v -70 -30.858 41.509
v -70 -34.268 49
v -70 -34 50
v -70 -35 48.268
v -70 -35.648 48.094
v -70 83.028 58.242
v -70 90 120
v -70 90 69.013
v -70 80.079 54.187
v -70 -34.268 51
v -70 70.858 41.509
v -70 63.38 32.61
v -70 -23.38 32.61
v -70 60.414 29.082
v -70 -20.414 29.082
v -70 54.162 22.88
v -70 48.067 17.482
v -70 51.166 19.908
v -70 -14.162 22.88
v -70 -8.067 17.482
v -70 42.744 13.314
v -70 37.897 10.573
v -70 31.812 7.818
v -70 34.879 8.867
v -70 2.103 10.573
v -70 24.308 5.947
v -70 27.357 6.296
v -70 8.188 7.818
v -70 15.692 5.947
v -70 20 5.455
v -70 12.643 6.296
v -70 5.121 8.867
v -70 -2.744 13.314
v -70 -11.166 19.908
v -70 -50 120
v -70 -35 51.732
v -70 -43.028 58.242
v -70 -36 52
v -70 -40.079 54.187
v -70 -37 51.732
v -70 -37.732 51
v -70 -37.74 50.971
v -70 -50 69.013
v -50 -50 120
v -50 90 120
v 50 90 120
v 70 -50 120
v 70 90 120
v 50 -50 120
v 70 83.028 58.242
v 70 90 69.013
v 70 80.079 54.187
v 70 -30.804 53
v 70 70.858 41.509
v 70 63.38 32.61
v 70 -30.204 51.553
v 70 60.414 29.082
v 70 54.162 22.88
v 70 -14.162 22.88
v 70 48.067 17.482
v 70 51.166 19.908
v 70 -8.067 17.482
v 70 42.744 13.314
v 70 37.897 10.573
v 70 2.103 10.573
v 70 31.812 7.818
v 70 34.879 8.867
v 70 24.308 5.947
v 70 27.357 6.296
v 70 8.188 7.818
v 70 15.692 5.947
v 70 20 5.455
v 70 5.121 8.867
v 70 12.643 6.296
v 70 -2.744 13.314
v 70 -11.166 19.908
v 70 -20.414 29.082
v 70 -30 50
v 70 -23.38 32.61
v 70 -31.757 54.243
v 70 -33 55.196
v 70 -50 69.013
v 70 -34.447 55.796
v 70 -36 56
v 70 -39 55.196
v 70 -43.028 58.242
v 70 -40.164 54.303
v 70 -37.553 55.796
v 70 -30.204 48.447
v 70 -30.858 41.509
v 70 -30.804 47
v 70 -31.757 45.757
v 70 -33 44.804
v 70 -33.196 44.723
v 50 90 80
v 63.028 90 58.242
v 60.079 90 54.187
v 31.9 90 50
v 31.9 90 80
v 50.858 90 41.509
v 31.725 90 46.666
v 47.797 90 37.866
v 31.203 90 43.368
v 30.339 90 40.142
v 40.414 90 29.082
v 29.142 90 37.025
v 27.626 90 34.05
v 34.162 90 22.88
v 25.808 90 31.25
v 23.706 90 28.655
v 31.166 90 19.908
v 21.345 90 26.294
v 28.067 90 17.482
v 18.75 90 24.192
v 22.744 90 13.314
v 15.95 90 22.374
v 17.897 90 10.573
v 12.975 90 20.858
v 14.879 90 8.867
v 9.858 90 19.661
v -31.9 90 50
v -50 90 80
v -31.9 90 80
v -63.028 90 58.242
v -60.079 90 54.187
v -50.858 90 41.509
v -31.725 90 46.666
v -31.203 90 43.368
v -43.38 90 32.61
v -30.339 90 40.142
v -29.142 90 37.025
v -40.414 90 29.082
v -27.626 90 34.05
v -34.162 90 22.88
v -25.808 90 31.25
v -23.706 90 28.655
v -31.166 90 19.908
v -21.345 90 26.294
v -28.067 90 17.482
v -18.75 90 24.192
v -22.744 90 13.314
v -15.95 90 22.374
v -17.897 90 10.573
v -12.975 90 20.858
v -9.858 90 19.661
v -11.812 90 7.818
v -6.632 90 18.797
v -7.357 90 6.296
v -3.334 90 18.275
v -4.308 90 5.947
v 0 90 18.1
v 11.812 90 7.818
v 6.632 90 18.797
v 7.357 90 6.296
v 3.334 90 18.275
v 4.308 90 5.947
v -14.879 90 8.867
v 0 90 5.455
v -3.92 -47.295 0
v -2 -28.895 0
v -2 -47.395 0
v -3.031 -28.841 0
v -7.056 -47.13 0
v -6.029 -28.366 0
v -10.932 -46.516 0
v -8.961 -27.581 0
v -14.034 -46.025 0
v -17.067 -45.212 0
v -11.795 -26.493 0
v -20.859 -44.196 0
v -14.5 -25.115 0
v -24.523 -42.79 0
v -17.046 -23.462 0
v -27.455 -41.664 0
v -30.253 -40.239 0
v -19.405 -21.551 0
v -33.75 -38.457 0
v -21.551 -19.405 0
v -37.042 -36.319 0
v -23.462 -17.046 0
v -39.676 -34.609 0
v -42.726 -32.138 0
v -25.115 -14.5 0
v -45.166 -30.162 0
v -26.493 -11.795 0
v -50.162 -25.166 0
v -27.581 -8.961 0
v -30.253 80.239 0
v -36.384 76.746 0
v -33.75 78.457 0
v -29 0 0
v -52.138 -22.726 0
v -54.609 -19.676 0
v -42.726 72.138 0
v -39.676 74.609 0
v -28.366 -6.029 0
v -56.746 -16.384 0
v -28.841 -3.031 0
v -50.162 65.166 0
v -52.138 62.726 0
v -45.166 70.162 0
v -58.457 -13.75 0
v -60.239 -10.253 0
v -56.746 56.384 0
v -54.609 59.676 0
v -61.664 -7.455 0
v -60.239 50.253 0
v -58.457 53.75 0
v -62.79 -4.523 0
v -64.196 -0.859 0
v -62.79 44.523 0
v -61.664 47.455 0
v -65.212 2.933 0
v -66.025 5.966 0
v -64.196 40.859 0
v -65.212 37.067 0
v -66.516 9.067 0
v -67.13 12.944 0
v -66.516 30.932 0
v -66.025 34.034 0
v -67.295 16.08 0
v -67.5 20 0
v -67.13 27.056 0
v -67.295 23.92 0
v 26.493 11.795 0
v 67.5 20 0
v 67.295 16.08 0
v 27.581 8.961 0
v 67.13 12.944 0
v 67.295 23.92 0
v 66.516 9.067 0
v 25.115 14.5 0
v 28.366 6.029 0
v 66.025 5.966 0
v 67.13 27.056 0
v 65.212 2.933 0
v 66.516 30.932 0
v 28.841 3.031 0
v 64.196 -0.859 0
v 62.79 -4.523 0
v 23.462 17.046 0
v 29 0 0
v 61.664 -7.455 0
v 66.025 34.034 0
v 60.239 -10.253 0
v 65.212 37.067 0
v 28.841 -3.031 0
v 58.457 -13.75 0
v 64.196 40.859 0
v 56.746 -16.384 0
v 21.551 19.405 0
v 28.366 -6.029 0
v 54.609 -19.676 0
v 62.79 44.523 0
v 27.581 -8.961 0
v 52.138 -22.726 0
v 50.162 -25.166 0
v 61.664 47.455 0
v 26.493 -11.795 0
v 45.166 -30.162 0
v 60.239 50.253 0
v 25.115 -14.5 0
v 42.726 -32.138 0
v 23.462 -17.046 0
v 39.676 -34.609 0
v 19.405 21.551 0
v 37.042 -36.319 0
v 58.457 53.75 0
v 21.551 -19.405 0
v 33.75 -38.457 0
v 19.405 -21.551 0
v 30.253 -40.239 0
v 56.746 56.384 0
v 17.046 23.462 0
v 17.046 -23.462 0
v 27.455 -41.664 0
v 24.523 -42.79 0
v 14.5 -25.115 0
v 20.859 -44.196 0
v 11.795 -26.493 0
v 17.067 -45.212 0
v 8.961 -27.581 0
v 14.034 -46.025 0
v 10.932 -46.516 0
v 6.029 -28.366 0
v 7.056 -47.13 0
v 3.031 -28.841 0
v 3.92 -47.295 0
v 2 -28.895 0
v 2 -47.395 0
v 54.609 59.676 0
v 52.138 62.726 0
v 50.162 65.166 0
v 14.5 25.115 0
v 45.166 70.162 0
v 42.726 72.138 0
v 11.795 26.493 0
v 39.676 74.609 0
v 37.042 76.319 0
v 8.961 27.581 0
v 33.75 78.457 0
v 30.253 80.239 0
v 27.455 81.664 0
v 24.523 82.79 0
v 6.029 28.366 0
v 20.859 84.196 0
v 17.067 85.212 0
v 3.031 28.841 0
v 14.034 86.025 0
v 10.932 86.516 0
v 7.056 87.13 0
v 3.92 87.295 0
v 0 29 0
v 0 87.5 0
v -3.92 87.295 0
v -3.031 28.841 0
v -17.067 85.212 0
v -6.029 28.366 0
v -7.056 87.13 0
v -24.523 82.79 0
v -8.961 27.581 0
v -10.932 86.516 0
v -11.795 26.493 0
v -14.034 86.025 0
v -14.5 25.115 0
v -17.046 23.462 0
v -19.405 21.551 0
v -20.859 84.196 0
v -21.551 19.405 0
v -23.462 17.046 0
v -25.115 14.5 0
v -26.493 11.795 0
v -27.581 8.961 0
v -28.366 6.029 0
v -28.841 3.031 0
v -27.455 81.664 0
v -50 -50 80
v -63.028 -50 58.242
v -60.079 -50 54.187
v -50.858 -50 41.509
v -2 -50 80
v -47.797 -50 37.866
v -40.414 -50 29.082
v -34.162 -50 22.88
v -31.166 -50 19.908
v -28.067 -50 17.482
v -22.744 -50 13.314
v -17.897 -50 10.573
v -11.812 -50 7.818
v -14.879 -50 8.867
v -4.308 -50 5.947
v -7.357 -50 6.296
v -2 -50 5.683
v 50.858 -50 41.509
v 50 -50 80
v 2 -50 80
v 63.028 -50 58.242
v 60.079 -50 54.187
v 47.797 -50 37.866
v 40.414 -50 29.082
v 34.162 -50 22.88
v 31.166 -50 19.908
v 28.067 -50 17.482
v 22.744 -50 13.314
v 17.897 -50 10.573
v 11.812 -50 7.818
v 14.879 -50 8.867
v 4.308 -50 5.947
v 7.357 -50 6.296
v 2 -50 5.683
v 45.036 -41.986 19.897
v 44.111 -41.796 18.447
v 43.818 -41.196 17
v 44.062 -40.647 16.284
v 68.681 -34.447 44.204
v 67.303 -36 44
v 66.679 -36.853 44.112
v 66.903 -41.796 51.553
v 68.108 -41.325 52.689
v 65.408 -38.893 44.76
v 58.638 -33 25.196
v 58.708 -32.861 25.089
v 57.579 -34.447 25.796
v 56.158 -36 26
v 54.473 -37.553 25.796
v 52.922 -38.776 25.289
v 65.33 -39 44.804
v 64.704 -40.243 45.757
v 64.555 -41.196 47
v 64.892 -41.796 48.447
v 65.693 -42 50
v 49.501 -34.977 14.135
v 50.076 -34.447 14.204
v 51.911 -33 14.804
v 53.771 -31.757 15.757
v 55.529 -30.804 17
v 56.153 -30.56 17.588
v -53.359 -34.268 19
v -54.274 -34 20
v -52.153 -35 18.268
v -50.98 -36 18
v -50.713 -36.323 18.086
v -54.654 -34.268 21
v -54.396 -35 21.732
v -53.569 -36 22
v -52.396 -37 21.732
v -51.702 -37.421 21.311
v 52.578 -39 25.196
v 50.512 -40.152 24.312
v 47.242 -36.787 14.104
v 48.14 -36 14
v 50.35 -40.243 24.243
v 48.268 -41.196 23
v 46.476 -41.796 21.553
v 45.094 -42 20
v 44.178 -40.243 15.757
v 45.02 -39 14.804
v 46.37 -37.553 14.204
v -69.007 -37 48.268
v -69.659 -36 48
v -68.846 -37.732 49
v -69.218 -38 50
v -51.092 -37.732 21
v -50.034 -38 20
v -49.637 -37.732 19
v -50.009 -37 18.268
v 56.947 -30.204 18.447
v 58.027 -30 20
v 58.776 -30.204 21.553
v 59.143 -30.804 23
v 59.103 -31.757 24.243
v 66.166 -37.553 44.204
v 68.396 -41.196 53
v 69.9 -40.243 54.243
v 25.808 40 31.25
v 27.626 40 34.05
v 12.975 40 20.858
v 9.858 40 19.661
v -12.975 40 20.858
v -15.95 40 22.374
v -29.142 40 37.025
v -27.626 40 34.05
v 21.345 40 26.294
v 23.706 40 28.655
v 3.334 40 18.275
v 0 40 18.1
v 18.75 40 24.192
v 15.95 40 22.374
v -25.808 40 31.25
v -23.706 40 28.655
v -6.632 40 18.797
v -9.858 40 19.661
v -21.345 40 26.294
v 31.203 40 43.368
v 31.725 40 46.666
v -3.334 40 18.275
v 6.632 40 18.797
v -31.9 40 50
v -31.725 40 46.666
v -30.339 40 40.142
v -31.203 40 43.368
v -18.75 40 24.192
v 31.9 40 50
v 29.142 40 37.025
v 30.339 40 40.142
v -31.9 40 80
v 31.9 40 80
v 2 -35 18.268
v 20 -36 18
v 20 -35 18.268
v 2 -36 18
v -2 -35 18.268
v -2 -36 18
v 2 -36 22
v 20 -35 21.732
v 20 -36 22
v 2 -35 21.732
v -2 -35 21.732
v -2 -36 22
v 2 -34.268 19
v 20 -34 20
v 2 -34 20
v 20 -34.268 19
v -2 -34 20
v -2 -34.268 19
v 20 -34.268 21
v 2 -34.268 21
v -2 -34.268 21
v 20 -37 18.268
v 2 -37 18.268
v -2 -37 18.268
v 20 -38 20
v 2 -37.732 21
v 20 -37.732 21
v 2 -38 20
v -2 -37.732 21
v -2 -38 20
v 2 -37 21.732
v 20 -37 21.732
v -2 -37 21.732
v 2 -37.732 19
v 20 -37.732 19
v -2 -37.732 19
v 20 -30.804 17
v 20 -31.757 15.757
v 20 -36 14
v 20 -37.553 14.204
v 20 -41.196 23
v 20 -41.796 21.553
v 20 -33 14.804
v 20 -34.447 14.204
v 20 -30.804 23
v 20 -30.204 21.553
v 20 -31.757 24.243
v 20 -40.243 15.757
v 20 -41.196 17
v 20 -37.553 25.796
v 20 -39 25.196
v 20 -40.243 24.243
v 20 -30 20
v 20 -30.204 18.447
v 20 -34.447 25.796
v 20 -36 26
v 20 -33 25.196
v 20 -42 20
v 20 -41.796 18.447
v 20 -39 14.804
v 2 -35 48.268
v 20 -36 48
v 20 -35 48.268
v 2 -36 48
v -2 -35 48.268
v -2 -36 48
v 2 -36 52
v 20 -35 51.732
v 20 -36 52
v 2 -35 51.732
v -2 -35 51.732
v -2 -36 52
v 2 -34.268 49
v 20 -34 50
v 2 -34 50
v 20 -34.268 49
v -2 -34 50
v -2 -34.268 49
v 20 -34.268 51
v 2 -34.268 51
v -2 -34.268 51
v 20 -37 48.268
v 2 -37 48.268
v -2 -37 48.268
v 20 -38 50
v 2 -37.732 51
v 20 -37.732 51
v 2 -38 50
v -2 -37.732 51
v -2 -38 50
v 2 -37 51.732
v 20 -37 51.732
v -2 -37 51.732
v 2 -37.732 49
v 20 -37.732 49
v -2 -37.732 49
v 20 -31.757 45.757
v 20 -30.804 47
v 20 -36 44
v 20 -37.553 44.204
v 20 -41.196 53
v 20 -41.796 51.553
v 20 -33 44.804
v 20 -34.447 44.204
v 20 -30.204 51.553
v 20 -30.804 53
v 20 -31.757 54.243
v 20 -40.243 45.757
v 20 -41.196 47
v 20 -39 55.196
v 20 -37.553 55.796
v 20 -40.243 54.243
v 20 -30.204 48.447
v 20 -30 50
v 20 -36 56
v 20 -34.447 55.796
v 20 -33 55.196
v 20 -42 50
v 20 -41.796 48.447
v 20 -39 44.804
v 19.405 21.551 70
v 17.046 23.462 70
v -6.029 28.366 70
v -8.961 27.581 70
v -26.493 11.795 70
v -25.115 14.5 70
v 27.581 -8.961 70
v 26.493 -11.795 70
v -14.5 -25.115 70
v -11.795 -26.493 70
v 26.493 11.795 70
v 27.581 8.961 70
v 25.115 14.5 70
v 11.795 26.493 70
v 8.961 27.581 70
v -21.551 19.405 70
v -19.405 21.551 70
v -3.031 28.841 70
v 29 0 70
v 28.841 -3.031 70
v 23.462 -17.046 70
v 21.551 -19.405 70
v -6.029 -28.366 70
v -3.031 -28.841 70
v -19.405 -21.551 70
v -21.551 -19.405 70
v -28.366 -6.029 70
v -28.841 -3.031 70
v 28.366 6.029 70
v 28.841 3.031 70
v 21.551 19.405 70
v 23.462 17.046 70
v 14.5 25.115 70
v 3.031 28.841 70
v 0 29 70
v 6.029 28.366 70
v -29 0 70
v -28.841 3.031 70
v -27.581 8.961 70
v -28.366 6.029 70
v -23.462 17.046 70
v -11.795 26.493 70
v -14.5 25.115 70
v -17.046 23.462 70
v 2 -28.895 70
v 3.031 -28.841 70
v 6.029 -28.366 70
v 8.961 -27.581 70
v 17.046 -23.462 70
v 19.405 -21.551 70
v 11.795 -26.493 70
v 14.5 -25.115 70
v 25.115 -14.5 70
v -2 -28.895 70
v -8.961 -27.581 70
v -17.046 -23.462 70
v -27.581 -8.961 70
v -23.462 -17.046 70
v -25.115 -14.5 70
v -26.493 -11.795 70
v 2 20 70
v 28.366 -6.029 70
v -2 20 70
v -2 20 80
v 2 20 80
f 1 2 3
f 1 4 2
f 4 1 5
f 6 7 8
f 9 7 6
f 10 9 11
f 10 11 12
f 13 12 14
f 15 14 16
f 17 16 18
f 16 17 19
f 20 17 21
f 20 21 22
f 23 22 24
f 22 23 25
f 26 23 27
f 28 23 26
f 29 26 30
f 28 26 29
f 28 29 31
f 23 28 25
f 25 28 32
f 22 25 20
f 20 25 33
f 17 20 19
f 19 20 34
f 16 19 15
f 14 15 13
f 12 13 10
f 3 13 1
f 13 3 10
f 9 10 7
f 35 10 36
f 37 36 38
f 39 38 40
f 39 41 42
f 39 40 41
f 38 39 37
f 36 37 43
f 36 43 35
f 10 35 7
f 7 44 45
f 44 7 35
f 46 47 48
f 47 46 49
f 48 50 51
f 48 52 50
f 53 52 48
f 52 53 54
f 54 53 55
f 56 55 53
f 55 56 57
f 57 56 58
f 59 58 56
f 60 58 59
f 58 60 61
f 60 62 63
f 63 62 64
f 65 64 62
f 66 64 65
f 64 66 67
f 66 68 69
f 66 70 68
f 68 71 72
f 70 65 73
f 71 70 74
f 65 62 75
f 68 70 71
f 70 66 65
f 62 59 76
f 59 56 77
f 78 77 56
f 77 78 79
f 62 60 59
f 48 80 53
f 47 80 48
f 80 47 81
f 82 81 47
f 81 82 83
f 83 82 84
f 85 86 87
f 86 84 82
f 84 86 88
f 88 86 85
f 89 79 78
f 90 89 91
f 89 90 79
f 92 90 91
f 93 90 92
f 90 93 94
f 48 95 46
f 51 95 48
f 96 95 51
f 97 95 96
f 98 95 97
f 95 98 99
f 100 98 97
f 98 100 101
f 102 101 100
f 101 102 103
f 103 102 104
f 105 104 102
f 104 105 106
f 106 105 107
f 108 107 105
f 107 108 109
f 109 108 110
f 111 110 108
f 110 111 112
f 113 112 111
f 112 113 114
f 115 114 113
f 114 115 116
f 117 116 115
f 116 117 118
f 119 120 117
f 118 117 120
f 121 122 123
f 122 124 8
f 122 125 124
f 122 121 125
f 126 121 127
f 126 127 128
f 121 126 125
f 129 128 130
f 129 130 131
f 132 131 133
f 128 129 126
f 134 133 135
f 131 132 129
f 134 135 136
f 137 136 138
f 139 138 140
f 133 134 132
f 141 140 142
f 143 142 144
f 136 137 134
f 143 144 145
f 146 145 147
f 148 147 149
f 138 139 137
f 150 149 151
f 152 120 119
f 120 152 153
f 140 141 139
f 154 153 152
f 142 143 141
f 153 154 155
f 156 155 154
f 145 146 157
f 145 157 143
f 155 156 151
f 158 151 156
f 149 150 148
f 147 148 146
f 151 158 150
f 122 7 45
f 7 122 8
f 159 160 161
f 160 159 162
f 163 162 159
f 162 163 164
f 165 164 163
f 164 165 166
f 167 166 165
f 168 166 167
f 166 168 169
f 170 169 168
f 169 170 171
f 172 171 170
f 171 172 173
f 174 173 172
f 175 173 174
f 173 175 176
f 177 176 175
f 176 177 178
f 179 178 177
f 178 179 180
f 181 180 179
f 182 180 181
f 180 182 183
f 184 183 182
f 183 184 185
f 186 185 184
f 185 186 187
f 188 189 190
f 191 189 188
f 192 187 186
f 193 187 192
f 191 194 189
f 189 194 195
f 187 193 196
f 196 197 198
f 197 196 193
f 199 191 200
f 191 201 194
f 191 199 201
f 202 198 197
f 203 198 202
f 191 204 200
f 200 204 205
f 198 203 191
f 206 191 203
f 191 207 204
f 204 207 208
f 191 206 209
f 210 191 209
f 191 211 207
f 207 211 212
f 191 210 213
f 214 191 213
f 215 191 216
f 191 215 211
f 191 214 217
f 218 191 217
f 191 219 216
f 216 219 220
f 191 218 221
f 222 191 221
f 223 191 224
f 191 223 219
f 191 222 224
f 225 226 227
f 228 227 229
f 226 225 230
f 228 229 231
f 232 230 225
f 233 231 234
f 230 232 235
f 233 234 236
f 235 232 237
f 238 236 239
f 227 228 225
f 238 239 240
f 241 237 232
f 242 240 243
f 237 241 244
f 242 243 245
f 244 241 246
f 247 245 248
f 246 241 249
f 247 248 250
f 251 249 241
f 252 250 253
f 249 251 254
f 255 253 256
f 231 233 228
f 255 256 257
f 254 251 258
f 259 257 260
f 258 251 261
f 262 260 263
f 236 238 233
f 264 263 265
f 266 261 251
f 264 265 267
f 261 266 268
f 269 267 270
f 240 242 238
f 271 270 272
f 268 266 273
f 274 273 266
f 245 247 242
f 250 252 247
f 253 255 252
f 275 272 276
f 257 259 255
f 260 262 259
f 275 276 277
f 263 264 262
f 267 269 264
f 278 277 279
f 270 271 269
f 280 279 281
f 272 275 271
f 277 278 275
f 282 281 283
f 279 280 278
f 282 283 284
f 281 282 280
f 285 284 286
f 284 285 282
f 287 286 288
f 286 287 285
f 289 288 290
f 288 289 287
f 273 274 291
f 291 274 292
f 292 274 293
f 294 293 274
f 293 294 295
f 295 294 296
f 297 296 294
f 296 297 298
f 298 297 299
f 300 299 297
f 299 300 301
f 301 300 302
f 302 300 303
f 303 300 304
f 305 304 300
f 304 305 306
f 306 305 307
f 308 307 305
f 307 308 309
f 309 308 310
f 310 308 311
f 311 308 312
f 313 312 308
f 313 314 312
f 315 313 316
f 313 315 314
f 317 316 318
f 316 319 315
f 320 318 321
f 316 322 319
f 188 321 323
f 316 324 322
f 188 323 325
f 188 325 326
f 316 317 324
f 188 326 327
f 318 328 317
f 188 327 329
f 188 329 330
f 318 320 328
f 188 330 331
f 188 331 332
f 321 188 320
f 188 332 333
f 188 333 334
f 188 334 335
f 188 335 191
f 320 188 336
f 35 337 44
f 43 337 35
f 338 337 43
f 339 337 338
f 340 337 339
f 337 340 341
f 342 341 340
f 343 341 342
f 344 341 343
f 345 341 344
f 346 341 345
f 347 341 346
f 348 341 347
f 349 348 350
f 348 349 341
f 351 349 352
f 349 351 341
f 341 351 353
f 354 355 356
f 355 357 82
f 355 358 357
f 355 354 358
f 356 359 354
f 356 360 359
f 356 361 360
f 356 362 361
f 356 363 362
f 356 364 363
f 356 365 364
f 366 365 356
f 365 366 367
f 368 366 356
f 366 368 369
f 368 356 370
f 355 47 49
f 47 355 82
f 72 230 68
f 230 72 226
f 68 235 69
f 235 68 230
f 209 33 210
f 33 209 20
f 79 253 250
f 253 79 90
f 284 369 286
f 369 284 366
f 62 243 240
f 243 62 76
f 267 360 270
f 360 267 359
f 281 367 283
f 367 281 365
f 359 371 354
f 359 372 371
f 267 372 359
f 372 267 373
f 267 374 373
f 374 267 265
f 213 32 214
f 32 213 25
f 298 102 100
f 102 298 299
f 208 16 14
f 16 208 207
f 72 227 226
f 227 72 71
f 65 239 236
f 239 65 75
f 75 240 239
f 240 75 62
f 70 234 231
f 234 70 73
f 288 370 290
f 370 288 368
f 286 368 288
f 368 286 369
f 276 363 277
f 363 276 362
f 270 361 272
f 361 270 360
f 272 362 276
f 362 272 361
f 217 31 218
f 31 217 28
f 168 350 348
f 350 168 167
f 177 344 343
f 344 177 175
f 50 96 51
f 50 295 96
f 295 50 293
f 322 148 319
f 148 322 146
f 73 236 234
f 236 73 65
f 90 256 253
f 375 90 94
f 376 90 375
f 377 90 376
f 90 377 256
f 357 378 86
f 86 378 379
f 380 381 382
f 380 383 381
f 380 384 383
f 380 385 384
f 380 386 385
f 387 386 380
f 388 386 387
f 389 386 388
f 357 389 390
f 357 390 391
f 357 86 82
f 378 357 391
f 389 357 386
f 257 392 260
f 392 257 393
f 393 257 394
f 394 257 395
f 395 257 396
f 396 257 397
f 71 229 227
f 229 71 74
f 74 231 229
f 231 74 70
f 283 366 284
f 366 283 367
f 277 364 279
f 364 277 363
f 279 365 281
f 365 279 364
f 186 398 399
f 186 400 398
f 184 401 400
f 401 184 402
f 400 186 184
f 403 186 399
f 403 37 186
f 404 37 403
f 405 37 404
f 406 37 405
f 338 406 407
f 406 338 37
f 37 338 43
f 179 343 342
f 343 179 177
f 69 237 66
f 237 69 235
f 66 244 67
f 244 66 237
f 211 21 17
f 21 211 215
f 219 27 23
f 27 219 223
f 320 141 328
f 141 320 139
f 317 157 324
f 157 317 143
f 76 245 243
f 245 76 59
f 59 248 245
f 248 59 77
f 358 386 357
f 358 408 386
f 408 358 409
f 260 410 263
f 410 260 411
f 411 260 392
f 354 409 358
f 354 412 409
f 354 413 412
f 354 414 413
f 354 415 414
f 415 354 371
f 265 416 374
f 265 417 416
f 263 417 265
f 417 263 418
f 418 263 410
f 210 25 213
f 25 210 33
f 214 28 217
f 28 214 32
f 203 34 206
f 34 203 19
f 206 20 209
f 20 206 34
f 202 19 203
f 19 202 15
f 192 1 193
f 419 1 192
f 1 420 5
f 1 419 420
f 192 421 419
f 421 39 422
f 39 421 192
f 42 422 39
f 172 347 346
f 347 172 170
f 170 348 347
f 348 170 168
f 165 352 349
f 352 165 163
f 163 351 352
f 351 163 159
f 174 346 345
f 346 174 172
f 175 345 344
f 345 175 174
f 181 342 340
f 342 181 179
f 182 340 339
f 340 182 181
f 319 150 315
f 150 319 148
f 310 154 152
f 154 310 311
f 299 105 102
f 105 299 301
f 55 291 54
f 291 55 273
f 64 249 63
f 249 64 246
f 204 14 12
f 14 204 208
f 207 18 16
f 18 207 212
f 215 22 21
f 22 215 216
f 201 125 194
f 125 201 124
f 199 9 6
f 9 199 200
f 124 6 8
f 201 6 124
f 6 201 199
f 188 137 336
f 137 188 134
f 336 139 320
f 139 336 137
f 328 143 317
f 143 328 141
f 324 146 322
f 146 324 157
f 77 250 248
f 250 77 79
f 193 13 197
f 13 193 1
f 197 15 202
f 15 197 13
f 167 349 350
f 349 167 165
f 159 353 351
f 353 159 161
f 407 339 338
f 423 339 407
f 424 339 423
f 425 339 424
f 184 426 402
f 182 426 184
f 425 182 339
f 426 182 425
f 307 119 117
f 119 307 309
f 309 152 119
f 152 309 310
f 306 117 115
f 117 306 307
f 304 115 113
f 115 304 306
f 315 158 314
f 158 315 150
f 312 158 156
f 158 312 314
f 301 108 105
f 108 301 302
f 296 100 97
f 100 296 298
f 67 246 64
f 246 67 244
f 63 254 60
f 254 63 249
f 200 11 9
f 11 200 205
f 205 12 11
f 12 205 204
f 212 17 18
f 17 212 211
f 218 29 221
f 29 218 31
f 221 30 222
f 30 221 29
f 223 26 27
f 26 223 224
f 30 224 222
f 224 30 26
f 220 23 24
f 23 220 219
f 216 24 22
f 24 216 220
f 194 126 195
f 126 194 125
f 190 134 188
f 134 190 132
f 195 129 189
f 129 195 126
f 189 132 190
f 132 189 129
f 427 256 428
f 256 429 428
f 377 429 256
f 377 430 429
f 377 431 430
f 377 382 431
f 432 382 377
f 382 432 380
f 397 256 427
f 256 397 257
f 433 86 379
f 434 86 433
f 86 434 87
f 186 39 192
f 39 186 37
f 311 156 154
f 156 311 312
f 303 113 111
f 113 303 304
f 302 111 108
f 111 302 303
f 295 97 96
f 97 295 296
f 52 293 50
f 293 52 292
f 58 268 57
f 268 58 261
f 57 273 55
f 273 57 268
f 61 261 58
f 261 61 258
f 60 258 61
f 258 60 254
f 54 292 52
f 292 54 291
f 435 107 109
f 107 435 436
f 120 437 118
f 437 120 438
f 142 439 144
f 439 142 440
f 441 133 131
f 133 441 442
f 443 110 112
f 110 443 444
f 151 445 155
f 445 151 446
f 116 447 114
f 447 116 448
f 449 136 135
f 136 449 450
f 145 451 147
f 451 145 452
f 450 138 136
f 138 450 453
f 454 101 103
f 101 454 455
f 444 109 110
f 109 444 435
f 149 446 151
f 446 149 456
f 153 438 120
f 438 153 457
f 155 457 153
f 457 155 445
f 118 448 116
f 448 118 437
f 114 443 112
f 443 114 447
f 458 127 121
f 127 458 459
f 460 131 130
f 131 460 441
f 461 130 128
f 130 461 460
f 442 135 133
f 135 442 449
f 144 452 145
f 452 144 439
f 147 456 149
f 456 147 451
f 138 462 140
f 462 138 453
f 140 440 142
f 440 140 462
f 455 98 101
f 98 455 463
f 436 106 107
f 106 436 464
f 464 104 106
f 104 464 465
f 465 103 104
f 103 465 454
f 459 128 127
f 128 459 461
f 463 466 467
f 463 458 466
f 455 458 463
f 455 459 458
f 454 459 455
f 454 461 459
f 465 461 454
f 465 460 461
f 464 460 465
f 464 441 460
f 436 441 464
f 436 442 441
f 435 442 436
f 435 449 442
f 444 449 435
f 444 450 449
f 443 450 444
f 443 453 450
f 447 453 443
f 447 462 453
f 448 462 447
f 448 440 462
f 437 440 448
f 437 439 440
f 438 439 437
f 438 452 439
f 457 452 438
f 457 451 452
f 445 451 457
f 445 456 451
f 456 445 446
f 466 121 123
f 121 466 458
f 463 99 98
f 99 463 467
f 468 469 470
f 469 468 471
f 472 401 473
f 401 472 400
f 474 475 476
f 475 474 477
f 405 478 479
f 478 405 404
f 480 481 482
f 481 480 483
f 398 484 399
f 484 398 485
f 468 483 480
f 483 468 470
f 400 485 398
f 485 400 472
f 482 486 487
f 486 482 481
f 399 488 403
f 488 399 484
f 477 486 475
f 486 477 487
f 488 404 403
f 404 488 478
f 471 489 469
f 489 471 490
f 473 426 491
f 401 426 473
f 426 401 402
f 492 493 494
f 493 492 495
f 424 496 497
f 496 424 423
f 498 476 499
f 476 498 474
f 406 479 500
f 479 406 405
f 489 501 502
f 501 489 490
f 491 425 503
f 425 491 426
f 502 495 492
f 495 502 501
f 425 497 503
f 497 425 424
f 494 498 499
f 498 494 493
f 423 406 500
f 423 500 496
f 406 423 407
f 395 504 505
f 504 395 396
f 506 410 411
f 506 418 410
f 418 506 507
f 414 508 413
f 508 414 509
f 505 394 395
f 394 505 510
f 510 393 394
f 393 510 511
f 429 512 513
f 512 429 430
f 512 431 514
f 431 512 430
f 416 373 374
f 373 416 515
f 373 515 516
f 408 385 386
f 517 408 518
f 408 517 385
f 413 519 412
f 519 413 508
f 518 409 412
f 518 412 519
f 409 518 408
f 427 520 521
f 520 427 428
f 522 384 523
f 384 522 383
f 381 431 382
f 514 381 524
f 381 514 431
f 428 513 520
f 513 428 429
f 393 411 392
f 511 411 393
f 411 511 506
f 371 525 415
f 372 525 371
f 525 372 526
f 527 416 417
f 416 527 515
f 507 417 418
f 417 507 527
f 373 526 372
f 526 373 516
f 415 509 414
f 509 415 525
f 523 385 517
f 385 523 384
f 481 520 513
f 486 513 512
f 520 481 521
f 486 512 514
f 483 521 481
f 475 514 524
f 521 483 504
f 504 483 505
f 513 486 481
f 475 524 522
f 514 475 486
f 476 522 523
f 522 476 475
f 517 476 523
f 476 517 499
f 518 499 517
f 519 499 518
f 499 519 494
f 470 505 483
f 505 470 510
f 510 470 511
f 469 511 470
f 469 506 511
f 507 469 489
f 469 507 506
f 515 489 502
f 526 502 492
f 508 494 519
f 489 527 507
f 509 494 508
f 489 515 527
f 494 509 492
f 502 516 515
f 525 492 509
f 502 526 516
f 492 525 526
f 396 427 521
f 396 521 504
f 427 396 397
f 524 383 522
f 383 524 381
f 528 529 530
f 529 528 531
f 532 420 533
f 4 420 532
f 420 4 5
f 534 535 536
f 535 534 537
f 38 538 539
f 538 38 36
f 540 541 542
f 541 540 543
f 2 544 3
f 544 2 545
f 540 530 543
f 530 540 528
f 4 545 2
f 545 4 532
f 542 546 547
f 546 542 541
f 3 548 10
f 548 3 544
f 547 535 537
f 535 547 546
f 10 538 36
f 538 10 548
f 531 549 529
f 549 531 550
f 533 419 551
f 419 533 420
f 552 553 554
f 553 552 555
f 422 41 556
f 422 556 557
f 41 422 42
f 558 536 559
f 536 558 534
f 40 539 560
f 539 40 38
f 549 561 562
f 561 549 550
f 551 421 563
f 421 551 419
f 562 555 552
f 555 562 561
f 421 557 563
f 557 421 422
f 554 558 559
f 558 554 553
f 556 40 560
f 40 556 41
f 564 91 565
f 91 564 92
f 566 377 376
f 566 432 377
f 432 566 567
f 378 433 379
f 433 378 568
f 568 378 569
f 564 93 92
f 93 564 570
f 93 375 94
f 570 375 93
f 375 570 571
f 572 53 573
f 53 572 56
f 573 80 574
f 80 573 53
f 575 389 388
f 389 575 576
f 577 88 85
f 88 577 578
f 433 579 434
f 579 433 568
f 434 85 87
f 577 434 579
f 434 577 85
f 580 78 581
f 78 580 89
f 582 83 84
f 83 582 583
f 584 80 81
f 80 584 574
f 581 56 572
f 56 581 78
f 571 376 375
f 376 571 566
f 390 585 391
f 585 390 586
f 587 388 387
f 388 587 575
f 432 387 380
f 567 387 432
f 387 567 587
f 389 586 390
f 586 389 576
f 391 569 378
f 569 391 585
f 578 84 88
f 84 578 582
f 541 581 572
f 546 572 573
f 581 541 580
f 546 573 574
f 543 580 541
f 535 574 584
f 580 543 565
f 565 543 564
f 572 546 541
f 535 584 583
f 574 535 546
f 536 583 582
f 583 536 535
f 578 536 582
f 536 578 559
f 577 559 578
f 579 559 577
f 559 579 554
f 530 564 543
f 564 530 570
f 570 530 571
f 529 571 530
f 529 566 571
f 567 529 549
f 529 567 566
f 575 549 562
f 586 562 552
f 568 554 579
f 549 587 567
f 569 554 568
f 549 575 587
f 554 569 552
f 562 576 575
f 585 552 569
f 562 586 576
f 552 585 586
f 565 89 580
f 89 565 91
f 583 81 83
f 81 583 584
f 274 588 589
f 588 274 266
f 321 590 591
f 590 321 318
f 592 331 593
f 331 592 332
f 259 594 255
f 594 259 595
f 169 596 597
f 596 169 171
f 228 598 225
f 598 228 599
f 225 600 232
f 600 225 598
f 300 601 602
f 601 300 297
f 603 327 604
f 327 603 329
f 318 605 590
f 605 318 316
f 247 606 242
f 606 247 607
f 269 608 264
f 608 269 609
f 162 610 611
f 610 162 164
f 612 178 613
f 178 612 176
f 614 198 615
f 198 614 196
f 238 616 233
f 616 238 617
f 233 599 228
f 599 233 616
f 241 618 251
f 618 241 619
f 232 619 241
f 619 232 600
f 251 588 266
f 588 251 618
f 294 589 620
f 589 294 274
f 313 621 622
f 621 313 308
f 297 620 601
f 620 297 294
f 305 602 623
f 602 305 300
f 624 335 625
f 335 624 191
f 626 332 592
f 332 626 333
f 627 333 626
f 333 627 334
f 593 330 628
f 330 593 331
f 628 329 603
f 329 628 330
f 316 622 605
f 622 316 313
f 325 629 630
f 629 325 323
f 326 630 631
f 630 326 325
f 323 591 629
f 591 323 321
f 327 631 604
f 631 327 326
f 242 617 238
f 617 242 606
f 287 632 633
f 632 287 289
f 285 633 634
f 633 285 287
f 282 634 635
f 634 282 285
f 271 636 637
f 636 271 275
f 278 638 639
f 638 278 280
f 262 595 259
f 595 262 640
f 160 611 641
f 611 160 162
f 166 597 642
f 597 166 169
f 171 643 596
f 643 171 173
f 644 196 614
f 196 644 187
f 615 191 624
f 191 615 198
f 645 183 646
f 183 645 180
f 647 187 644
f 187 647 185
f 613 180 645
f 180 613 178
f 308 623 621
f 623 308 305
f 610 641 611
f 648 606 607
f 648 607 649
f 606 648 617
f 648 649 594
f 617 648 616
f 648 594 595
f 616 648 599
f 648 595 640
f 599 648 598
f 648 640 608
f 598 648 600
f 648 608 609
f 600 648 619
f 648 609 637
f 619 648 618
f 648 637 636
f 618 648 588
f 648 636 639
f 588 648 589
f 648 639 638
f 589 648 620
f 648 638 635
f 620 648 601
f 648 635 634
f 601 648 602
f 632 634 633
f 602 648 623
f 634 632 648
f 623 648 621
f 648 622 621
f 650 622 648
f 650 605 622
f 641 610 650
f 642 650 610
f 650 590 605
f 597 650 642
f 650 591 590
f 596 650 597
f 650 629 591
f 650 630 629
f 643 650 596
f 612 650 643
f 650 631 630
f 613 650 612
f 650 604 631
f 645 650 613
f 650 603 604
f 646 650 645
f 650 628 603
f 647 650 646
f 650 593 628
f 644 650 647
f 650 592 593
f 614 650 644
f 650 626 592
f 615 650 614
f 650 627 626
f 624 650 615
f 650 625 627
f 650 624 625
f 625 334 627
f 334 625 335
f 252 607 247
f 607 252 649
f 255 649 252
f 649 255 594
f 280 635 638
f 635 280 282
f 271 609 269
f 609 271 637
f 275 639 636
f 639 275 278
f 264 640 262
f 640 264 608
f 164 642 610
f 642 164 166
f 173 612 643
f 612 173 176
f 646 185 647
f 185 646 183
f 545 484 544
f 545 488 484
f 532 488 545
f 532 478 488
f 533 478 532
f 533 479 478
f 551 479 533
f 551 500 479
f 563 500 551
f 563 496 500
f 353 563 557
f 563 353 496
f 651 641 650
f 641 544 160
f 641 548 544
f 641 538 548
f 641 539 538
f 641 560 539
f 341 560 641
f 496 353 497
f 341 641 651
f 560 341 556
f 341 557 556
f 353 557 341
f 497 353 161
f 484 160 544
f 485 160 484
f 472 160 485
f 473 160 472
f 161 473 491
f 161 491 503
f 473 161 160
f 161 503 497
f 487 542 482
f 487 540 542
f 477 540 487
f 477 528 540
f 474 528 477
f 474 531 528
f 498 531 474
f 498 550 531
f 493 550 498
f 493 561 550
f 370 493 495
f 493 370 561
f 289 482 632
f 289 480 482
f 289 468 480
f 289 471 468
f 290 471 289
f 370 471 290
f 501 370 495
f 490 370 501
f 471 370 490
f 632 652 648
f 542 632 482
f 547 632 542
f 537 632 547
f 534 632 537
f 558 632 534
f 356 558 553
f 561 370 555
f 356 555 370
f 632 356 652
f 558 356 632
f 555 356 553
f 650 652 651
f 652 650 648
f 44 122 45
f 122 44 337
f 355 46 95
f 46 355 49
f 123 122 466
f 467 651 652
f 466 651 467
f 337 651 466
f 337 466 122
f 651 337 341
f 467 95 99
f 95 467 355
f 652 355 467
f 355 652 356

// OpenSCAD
$fn=60;
width=140;
height=120;
mast=58; // OD=2.25"
mast2=1.1*mast;

difference() {
    translate([0, 20, height/2]) intersection() {
        cube([width, width, height], center=true);
        cylinder(r1=40, r2=150, h=2*height, center=true);
    }
    cylinder(r=mast/2, h=140, center=true);
    translate([0, 40, 50]) {
        rotate([-90, 0, 0]) cylinder(r=mast2/2, h=100);
        translate([0, 50, 50]) cube([mast2, 100, 100], center=true);
    }
    translate([0, -30, 0])
    cube([4, 100, 200], center=true);
    translate([0, 0, 110])
        cube([100, 200, 60], center=true);
    for (z = [20, 50]) {
        translate([20, -36, z]) rotate([0, 90, 0]) # union() {
            cylinder(r=2, h=200, center=true, $fn=12);
            cylinder(r=6, h=100, $fn=24);
        }
    }
}
